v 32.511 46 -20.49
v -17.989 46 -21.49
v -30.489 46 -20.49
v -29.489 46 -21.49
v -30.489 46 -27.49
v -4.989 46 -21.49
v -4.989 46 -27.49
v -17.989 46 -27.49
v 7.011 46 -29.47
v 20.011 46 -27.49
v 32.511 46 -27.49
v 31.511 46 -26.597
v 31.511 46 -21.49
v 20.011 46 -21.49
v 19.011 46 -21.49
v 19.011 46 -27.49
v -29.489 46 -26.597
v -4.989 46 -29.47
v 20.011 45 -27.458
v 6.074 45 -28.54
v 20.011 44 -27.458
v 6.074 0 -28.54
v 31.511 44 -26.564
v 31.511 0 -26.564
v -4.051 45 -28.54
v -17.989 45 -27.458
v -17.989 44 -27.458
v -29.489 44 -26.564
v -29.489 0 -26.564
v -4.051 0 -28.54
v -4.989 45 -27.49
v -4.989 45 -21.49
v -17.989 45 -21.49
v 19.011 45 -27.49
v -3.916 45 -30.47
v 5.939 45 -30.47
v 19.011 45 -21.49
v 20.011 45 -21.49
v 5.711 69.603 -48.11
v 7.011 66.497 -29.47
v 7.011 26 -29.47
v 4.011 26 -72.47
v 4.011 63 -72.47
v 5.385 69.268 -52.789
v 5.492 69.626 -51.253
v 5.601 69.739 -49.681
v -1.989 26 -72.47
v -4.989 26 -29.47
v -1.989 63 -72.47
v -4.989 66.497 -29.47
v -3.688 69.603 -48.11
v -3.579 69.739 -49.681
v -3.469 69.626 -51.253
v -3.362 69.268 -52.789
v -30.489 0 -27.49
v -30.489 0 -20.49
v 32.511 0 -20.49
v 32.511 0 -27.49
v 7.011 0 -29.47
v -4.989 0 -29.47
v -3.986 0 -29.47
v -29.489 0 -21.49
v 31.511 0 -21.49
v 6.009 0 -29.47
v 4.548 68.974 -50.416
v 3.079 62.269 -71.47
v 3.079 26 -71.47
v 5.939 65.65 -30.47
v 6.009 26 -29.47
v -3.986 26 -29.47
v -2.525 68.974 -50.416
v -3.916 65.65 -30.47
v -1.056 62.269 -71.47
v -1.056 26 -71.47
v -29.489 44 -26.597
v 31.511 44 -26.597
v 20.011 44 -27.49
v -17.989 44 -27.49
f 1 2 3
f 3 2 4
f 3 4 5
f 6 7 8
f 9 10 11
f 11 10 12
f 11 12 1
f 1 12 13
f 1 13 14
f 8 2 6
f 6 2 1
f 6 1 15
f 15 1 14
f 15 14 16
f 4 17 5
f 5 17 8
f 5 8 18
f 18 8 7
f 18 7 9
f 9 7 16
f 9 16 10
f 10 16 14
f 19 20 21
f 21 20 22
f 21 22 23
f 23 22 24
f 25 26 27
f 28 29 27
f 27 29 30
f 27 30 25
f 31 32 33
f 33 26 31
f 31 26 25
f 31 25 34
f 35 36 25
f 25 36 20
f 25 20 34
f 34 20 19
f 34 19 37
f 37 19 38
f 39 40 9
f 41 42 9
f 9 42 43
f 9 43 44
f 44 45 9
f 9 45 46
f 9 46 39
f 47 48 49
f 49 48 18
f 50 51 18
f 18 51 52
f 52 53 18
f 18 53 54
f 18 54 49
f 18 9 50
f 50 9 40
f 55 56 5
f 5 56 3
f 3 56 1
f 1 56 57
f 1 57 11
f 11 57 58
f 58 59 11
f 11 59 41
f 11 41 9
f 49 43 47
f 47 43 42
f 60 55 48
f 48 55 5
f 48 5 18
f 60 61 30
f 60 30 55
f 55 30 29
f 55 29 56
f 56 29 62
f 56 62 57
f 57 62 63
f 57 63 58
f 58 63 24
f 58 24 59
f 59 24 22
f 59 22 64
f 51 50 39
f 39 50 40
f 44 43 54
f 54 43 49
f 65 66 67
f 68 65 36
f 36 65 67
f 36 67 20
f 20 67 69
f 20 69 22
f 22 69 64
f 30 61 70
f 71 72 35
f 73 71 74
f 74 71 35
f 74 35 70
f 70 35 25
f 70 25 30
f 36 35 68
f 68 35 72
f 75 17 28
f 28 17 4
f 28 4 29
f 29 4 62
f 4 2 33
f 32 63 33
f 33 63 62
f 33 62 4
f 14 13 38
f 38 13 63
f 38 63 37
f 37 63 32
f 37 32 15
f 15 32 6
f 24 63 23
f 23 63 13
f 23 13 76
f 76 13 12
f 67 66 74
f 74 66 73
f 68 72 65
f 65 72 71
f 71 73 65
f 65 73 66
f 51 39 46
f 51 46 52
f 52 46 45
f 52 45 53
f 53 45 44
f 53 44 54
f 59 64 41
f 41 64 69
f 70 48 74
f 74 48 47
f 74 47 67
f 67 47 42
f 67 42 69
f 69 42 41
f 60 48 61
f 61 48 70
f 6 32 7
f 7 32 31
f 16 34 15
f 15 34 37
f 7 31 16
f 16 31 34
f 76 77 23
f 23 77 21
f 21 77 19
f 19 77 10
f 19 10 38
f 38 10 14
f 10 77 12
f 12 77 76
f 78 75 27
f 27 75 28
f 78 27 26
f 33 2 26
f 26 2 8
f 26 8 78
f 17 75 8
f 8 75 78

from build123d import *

# Parameters (mm, degrees)
BOSS_EXTRUDE1_DEPTH     = 70
CUT_EXTRUDE5_DEPTH      = 24
CUT_EXTRUDE4_DEPTH      = 50
CUT_EXTRUDE4_DEPTH_BACK = 50
SHELL2_T                = -1
FILLET1_R               = 10
CUT_EXTRUDE3_DEPTH      = 26
CUT_EXTRUDE2_DEPTH      = 1
CUT_EXTRUDE2_DEPTH_BACK = 1
SKETCH4_W               = 24
SKETCH4_H               = 6


with BuildPart() as part:
    # Sketch2 → Boss-Extrude1 (new body)
    with BuildSketch(Plane(origin=(0, 0, 0), x_dir=(1, 0, 0), z_dir=(0, 1, 0))):
        Polygon((-18.988562983, 28.382917999), (-4.988562983, 29.470238095), (-1.988562983, 72.470238095), (4.011437017, 72.470238095), (7.011437017, 29.470238095), (32.511437017, 27.489762205), (32.511437017, 20.489762205), (-30.488562983, 20.489762205), (-30.488562983, 27.489762205), align=None)
    extrude(amount=BOSS_EXTRUDE1_DEPTH)

    # Sketch26 → Cut-Extrude5 (cut)
    with BuildSketch(Plane(origin=(0, 70, 0), x_dir=(1, 0, 0), z_dir=(0, 1, 0))):
        Polygon((-4.988562983, 29.470238095), (7.011437017, 29.470238095), (32.511437017, 27.489762205), (32.511437017, 20.489762205), (-30.488562983, 20.489762205), (-30.488562983, 27.489762205), align=None)
    extrude(amount=-CUT_EXTRUDE5_DEPTH, mode=Mode.SUBTRACT)

    # Sketch7 → Cut-Extrude4 (cut, two sides: drawn at the far end of the back side and taken through both)
    with BuildSketch(Plane(origin=(0, 0, 0), x_dir=(0, 0, -1), z_dir=(1, 0, 0)).offset(-CUT_EXTRUDE4_DEPTH_BACK)):
        Polygon((50.489762205, 70), (20.489762205, 70), (20.489762205, 65), align=None)
        Polygon((72.470238095, 70), (50.489762205, 70), (72.470238095, 63), align=None)
    extrude(amount=CUT_EXTRUDE4_DEPTH + CUT_EXTRUDE4_DEPTH_BACK, mode=Mode.SUBTRACT)

    # Shell2
    shell2_openings = [part.faces().sort_by_distance(p)[0] for p in [
        (1.011437017, 0, -34.888692943),
    ]]
    offset(amount=SHELL2_T, openings=shell2_openings, kind=Kind.INTERSECTION)

    # Fillet1
    fillet1_edges = [part.edges().sort_by_distance(p)[0] for p in [
        (1.011437017, 70, -50.489762205),
    ]]
    fillet(fillet1_edges, radius=FILLET1_R)

    # Sketch6 → Cut-Extrude3 (cut)
    with BuildSketch(Plane.XZ):
        Polygon((-4.988562983, -29.470238095), (7.011437017, -29.470238095), (4.011437017, -72.470238095), (-1.988562983, -72.470238095), align=None)
    extrude(amount=-CUT_EXTRUDE3_DEPTH, mode=Mode.SUBTRACT)

    # Sketch4 → Cut-Extrude2 (cut, two sides: drawn at the far end of the back side and taken through both)
    with BuildSketch(Plane(origin=(0, 45, 0), x_dir=(1, 0, 0), z_dir=(0, 1, 0)).offset(-CUT_EXTRUDE2_DEPTH_BACK)):
        Polygon((-29.488562983, 26.596606412), (-17.988562983, 27.489762205), (-17.988562983, 21.489762205), (-29.488562983, 21.489762205), align=None)
        Polygon((31.511437017, 21.489762205), (20.011437017, 21.489762205), (20.011437017, 27.489762205), (31.511437017, 26.596606412), align=None)
        with Locations((7.011437017, 24.489762205)):
            Rectangle(SKETCH4_W, SKETCH4_H)
    extrude(amount=CUT_EXTRUDE2_DEPTH + CUT_EXTRUDE2_DEPTH_BACK, mode=Mode.SUBTRACT)


solid = part.part
